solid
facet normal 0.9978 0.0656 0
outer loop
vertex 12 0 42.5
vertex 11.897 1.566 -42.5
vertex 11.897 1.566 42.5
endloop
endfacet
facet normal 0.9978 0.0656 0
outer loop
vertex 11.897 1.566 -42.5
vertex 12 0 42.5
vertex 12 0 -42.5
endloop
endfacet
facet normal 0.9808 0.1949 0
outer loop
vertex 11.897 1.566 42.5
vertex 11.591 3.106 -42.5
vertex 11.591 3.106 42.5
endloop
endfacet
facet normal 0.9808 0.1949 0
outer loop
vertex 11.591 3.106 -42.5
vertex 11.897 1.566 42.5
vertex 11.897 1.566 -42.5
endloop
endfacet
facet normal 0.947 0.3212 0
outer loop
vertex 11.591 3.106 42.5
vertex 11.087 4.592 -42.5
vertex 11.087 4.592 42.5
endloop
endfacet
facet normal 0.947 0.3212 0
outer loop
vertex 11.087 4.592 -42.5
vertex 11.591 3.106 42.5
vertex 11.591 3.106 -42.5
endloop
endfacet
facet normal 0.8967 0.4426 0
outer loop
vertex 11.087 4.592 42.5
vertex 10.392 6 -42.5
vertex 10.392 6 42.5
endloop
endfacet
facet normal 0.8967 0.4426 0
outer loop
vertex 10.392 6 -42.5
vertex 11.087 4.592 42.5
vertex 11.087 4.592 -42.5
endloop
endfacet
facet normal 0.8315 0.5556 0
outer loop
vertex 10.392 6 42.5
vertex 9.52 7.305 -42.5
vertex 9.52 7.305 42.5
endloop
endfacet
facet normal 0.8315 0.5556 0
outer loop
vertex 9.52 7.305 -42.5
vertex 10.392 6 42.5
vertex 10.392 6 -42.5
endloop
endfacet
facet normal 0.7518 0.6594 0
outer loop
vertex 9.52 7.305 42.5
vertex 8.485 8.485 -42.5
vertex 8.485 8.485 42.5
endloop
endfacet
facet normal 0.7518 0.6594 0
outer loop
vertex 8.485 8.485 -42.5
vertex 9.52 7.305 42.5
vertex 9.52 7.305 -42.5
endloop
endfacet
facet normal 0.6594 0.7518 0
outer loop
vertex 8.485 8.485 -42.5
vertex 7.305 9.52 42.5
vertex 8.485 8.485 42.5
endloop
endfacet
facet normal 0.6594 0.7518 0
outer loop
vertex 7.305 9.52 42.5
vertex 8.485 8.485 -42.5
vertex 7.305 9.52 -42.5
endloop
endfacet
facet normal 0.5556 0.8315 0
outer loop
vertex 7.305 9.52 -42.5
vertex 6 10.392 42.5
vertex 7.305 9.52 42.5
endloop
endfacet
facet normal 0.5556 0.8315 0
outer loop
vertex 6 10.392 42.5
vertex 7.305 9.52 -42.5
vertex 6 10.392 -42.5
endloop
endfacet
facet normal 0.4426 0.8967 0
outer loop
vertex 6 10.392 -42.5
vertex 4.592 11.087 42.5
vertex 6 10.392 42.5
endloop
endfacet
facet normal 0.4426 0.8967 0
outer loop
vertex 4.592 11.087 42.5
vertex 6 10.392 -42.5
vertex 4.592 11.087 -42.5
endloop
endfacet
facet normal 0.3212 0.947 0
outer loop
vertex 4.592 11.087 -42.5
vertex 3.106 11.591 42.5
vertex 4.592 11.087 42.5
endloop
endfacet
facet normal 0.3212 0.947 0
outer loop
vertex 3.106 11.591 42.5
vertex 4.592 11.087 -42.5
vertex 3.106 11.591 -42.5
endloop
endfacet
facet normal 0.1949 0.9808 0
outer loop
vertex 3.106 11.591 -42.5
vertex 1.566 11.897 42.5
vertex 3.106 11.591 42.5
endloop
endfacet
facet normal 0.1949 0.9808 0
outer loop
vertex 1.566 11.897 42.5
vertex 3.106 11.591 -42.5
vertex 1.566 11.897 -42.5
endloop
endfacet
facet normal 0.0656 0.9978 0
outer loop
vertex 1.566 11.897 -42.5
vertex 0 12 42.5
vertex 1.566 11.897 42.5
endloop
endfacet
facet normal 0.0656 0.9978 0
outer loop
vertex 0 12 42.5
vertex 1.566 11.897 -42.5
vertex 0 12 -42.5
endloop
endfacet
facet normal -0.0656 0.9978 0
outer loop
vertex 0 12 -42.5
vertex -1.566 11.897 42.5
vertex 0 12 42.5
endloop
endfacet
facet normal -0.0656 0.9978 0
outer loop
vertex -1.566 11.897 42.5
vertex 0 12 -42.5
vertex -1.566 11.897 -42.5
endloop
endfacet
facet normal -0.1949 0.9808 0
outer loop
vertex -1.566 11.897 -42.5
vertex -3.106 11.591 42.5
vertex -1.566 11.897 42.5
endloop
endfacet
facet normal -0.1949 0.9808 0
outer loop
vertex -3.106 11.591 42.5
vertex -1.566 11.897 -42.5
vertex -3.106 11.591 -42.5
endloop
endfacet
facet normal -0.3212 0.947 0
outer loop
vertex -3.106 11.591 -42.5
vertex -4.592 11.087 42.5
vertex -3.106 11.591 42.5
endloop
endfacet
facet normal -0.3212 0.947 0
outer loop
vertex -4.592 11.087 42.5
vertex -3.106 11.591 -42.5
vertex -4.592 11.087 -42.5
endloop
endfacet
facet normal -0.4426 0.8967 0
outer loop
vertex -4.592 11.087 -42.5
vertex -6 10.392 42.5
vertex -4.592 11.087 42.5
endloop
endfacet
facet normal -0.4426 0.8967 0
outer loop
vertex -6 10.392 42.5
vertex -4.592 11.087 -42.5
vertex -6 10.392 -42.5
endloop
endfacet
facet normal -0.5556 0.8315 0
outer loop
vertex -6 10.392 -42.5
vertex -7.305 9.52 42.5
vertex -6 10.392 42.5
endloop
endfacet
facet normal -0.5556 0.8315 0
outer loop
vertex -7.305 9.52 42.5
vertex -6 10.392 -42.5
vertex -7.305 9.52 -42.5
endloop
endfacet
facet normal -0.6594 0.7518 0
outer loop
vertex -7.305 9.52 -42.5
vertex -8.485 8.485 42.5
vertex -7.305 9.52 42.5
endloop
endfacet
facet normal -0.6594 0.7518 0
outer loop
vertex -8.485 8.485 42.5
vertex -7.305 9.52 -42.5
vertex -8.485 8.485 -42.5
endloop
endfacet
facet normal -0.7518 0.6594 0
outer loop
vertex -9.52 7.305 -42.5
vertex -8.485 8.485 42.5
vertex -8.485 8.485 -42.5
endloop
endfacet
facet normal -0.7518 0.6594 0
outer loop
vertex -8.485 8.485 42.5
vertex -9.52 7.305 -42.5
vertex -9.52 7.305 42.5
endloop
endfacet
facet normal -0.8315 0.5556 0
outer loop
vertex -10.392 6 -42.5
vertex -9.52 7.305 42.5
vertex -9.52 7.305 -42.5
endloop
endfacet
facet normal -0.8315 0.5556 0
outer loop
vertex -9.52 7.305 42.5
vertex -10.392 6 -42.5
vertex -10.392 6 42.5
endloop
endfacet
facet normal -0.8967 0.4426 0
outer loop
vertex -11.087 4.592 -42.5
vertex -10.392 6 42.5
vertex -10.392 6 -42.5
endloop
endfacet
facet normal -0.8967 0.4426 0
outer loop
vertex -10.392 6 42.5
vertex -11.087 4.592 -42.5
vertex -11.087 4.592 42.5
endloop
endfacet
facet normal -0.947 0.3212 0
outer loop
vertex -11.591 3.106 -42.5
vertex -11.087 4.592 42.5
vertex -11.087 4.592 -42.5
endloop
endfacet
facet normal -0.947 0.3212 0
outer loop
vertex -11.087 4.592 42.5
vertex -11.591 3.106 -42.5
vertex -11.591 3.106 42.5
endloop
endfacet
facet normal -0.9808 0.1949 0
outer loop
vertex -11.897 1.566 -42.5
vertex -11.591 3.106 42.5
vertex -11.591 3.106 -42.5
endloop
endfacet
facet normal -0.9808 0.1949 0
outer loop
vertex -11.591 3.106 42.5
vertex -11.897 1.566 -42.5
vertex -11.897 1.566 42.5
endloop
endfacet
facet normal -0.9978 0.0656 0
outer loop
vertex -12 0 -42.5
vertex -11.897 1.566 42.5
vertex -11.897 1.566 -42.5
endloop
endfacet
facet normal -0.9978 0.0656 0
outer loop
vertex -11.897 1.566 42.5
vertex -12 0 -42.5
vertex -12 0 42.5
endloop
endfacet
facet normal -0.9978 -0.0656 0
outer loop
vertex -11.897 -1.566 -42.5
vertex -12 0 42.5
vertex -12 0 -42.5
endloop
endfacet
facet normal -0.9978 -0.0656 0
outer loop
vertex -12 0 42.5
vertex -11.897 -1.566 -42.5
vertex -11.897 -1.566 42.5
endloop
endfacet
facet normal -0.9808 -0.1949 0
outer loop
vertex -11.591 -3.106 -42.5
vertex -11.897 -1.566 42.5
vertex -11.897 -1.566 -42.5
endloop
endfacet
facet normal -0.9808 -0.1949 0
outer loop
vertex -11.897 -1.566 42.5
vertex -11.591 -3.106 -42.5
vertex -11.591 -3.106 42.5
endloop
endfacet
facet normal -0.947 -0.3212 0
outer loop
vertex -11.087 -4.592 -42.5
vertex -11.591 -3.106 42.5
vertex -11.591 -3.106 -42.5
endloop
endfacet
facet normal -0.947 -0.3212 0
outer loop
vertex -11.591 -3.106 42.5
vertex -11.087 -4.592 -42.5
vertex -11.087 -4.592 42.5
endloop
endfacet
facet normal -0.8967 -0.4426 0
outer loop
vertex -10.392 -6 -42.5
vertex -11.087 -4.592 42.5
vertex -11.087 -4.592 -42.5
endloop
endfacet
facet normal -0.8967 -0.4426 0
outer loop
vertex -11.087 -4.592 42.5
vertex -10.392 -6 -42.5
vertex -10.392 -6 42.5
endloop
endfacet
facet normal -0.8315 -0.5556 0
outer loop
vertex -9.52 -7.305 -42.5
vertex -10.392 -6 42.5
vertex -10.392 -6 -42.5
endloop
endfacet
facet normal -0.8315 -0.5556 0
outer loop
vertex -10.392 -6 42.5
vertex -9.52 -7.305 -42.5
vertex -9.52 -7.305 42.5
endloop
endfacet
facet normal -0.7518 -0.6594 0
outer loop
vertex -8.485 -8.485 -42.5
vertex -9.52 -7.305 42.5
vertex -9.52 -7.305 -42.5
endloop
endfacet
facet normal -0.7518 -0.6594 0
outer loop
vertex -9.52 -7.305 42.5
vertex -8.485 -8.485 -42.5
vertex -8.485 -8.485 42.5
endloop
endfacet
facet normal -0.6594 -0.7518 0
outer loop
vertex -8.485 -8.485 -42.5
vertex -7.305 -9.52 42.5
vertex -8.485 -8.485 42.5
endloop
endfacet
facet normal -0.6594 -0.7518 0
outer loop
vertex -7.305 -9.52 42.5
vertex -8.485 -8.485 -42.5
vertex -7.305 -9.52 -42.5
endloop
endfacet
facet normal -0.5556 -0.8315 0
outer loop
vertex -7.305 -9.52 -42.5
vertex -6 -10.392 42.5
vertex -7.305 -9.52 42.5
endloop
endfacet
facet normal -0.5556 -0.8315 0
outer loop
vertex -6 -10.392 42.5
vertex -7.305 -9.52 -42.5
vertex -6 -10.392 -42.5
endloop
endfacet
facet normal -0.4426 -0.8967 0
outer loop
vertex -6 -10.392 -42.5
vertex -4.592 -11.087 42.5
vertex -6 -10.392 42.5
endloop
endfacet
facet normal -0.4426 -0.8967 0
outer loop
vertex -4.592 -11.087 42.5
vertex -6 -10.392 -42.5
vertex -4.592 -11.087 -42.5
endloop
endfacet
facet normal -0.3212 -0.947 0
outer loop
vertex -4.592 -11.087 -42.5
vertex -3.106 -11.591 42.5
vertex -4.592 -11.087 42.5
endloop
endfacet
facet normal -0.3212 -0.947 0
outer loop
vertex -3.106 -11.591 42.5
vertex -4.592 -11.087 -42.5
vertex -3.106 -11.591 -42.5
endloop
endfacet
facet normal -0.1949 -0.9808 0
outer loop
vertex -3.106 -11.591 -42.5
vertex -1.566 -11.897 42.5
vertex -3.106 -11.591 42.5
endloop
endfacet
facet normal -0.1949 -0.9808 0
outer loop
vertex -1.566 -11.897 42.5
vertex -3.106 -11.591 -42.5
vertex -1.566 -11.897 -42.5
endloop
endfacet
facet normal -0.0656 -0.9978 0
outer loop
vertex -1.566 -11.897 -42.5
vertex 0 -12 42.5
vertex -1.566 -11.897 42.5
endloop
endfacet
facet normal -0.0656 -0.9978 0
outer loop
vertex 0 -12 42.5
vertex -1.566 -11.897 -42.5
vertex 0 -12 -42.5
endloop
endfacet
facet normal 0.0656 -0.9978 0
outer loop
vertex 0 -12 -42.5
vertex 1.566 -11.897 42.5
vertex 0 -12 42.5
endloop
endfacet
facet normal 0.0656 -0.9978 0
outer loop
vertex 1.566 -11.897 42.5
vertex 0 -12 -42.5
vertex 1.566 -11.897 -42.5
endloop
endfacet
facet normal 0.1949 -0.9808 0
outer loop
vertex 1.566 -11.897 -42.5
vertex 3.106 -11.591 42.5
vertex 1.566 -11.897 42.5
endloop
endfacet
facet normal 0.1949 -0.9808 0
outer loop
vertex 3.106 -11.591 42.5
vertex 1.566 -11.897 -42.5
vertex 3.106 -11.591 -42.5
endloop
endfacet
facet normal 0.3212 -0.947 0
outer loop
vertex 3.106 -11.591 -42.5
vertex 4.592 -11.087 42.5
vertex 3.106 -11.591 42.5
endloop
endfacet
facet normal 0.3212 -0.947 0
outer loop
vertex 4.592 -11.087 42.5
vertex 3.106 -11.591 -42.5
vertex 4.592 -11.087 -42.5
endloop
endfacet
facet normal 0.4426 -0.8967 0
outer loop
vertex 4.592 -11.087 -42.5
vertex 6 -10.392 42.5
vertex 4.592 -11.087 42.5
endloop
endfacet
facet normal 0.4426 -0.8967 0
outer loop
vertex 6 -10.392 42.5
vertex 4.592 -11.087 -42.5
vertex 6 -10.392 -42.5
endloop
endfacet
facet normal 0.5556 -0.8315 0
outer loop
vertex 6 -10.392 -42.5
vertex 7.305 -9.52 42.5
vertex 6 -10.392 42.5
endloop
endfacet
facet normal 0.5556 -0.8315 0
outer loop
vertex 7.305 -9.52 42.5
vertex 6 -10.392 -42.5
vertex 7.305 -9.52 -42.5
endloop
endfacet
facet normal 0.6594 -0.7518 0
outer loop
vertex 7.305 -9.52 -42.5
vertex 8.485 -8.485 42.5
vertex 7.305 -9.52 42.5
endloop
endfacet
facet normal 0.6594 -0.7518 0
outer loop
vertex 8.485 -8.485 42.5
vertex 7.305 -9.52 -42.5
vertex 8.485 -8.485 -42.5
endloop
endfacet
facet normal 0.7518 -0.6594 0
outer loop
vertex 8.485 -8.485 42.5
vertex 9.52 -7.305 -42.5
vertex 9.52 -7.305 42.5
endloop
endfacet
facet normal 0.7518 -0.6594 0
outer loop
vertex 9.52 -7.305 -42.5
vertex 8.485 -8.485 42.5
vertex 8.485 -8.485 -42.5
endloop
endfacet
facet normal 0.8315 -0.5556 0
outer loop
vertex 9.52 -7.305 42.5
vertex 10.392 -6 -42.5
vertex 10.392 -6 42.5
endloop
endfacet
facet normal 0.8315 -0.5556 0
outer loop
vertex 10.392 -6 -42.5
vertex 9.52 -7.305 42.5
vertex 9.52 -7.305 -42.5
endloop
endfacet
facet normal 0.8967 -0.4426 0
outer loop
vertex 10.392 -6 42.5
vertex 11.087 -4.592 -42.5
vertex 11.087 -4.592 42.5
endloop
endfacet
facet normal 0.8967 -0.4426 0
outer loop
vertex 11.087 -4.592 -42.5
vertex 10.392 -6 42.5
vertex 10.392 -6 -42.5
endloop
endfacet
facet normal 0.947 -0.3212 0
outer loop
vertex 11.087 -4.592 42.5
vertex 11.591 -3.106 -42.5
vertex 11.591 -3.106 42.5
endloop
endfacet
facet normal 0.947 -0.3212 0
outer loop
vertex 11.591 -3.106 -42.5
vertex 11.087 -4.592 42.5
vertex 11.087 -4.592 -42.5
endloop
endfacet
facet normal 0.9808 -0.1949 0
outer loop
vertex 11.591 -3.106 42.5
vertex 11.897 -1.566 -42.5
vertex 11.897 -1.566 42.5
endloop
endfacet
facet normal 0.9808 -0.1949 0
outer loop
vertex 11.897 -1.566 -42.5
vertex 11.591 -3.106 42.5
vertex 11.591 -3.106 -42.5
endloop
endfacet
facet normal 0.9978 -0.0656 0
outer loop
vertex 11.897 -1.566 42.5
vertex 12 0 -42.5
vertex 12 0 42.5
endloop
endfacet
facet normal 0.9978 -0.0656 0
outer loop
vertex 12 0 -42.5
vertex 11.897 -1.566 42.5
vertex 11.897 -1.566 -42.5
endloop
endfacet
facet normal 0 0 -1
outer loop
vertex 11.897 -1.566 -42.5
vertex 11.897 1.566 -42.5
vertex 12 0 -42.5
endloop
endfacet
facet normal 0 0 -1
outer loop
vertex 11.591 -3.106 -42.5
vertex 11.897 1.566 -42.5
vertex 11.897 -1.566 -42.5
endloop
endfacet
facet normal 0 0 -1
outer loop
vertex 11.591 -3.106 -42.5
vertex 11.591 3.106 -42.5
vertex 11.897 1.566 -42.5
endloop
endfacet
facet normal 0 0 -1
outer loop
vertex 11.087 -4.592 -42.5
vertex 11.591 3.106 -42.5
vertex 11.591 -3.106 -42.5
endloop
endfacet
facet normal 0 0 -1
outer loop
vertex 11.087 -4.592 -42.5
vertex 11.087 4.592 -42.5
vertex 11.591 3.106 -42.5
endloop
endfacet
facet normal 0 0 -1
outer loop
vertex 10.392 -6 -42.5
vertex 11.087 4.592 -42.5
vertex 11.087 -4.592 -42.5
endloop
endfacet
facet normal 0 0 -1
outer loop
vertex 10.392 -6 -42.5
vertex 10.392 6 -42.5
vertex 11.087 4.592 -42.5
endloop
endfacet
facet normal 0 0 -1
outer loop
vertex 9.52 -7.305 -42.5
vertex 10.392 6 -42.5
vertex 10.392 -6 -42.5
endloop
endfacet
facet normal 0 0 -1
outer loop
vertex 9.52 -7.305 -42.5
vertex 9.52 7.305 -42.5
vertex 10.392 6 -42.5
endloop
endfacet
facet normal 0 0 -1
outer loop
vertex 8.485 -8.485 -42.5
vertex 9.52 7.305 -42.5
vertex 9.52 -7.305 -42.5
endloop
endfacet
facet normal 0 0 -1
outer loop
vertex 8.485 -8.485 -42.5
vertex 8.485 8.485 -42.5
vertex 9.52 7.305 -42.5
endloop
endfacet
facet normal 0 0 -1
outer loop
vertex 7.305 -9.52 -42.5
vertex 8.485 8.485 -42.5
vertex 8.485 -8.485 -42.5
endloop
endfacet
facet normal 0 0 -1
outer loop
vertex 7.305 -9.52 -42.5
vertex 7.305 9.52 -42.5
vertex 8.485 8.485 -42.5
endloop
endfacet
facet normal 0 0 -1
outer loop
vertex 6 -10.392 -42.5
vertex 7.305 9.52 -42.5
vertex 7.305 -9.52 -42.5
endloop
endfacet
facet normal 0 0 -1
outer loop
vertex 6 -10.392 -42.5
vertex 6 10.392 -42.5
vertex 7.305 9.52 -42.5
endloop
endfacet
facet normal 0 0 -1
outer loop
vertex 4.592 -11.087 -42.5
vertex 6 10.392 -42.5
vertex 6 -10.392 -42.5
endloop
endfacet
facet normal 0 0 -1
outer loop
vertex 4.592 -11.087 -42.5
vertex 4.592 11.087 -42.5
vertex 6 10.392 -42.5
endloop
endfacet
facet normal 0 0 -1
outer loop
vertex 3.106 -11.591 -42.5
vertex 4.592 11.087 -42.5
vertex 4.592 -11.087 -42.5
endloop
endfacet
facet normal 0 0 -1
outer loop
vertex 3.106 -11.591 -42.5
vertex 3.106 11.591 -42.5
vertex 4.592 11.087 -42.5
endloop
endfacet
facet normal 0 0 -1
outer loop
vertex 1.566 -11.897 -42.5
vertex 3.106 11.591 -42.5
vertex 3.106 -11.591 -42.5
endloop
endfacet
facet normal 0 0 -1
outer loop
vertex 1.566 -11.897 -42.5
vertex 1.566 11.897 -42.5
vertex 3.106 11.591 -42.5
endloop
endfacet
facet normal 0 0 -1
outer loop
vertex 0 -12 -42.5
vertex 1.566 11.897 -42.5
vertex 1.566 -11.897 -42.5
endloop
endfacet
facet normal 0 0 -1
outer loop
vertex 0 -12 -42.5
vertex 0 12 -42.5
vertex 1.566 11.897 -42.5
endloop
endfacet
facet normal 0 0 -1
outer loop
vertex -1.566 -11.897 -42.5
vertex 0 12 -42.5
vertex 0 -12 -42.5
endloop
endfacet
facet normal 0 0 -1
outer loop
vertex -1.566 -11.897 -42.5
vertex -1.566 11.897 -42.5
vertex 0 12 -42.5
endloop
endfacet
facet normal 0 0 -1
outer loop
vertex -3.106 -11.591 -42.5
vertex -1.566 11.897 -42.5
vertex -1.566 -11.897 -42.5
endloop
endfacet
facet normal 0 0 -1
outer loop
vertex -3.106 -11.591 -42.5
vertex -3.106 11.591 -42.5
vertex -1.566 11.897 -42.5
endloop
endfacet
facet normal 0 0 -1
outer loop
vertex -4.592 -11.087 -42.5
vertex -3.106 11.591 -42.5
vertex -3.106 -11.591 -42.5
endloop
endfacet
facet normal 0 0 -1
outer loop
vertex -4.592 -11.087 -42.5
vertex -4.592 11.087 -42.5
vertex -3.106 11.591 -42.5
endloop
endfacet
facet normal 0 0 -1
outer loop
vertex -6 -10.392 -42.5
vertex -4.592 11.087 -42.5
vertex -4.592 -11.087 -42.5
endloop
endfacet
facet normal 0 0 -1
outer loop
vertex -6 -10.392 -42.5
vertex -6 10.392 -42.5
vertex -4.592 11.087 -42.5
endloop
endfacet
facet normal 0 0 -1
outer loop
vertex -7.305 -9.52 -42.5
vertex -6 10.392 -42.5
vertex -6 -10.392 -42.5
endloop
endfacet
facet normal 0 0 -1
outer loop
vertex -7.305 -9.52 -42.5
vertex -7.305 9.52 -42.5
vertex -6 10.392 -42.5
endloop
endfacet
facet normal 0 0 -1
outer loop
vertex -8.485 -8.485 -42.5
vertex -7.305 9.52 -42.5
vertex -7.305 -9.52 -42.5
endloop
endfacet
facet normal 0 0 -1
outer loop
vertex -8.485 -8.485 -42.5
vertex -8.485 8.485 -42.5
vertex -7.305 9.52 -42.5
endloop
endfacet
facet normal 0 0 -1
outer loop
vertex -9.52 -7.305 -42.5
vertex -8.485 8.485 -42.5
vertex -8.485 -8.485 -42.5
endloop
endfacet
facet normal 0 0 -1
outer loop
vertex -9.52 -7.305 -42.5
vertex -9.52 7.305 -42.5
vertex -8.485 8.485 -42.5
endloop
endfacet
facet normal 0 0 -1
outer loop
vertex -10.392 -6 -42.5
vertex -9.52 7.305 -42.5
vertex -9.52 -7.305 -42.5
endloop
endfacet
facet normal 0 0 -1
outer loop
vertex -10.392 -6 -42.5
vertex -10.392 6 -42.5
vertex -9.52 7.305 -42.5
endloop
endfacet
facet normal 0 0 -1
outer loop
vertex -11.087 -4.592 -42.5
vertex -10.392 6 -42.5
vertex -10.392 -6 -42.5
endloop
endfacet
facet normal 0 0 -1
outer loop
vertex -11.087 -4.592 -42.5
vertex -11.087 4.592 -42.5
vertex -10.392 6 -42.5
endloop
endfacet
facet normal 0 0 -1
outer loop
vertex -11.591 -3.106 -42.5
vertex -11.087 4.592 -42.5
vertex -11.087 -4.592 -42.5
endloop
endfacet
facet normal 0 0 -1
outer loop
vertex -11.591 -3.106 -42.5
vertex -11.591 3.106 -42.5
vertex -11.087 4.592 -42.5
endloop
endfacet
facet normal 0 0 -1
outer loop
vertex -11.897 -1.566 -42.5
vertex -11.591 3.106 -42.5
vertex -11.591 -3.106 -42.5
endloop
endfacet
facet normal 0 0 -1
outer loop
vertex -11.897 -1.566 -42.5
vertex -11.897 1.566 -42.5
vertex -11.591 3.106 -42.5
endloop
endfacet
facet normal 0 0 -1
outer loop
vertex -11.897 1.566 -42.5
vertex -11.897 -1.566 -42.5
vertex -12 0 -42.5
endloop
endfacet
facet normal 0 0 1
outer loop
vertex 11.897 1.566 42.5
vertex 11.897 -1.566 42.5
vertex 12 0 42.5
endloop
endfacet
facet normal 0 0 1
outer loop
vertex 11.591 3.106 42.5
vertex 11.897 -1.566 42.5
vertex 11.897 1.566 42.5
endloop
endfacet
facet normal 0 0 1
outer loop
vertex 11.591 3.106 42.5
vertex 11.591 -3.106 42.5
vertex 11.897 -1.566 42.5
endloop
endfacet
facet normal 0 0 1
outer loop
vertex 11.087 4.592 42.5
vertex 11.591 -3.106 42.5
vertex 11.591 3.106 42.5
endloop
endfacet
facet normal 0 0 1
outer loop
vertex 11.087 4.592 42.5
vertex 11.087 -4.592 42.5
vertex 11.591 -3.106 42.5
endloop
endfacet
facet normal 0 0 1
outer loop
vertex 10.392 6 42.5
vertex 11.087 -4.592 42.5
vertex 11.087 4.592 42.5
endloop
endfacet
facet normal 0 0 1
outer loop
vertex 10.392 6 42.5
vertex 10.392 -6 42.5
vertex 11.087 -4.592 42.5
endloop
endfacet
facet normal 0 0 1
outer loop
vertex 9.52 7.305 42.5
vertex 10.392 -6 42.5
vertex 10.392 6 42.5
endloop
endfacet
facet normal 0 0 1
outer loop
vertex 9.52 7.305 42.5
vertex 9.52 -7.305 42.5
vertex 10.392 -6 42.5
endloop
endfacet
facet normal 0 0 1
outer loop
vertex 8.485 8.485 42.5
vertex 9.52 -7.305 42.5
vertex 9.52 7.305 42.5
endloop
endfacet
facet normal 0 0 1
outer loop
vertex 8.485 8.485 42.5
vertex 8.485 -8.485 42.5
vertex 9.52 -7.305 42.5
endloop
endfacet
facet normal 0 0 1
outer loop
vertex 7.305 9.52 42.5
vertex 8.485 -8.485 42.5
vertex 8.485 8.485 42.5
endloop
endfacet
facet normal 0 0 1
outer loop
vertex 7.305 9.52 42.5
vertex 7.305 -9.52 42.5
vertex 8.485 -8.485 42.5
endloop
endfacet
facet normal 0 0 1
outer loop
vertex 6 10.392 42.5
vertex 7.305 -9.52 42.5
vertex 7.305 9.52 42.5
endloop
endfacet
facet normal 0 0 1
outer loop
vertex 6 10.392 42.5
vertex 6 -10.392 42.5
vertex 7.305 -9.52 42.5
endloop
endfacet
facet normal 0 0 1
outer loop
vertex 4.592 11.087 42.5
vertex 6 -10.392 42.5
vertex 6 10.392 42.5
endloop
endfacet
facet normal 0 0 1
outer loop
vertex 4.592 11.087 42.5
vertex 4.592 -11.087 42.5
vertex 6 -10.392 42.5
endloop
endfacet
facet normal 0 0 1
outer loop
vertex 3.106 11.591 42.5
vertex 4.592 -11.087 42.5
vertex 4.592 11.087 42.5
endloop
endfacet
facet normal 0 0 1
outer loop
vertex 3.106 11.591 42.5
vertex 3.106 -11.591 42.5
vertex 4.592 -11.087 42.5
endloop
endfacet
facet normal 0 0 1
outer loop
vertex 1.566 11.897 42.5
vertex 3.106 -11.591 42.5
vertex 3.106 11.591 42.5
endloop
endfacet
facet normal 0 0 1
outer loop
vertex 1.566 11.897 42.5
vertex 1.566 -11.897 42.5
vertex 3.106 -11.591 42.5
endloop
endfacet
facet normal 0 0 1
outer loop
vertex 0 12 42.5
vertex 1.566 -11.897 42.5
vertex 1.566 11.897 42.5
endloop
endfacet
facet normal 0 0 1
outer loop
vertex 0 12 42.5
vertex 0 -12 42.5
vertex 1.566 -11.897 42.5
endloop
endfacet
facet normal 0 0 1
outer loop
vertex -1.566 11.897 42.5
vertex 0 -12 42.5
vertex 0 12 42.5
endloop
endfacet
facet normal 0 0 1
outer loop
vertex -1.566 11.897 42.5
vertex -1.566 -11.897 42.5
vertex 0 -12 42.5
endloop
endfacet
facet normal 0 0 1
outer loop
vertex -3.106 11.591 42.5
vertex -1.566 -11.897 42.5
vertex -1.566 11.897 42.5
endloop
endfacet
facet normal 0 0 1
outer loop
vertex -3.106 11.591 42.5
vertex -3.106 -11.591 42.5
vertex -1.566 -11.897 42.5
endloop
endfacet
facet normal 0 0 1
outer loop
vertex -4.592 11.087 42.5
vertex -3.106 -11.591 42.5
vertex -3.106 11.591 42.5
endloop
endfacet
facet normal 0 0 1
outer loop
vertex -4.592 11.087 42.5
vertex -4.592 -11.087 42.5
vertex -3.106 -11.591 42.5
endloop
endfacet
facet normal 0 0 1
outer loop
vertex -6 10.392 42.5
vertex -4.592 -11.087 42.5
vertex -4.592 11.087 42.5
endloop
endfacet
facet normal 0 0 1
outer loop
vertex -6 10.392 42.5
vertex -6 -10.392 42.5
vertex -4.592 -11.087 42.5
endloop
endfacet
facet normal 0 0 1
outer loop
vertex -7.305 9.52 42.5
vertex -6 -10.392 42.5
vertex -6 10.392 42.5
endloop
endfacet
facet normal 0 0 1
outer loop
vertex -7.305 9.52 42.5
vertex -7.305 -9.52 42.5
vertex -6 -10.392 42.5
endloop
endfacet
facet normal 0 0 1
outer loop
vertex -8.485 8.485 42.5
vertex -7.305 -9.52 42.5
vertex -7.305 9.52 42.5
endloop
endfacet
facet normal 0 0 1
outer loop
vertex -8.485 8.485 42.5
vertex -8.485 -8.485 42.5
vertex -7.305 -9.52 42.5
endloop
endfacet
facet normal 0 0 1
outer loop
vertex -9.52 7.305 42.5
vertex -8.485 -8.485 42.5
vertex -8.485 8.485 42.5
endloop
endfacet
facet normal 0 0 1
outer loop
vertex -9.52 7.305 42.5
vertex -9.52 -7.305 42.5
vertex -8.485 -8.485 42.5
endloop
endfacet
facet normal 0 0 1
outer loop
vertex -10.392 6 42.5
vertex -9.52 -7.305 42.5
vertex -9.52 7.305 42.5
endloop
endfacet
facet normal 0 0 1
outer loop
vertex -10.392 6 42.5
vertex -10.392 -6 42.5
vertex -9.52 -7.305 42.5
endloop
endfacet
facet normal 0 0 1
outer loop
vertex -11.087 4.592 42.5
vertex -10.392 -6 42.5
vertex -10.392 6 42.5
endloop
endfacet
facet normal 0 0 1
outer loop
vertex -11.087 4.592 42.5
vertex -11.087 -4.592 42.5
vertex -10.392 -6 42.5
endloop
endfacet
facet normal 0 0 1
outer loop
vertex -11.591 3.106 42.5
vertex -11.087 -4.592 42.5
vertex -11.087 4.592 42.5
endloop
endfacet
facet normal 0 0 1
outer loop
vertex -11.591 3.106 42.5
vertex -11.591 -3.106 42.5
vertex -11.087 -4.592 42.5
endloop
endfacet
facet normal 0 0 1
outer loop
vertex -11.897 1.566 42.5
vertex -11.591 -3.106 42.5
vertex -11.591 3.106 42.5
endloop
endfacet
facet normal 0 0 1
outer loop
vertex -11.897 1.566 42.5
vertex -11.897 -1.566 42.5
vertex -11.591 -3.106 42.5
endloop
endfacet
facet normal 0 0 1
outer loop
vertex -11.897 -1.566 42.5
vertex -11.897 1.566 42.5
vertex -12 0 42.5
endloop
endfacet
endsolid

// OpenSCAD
// ========================================
// a cylinder with radius 12 mm and height 85 mm
// NeuroCAD canonical IR; dimensions are millimetres
// ========================================
$fn = 48;

cylinder(r=12, h=85, center=true);
